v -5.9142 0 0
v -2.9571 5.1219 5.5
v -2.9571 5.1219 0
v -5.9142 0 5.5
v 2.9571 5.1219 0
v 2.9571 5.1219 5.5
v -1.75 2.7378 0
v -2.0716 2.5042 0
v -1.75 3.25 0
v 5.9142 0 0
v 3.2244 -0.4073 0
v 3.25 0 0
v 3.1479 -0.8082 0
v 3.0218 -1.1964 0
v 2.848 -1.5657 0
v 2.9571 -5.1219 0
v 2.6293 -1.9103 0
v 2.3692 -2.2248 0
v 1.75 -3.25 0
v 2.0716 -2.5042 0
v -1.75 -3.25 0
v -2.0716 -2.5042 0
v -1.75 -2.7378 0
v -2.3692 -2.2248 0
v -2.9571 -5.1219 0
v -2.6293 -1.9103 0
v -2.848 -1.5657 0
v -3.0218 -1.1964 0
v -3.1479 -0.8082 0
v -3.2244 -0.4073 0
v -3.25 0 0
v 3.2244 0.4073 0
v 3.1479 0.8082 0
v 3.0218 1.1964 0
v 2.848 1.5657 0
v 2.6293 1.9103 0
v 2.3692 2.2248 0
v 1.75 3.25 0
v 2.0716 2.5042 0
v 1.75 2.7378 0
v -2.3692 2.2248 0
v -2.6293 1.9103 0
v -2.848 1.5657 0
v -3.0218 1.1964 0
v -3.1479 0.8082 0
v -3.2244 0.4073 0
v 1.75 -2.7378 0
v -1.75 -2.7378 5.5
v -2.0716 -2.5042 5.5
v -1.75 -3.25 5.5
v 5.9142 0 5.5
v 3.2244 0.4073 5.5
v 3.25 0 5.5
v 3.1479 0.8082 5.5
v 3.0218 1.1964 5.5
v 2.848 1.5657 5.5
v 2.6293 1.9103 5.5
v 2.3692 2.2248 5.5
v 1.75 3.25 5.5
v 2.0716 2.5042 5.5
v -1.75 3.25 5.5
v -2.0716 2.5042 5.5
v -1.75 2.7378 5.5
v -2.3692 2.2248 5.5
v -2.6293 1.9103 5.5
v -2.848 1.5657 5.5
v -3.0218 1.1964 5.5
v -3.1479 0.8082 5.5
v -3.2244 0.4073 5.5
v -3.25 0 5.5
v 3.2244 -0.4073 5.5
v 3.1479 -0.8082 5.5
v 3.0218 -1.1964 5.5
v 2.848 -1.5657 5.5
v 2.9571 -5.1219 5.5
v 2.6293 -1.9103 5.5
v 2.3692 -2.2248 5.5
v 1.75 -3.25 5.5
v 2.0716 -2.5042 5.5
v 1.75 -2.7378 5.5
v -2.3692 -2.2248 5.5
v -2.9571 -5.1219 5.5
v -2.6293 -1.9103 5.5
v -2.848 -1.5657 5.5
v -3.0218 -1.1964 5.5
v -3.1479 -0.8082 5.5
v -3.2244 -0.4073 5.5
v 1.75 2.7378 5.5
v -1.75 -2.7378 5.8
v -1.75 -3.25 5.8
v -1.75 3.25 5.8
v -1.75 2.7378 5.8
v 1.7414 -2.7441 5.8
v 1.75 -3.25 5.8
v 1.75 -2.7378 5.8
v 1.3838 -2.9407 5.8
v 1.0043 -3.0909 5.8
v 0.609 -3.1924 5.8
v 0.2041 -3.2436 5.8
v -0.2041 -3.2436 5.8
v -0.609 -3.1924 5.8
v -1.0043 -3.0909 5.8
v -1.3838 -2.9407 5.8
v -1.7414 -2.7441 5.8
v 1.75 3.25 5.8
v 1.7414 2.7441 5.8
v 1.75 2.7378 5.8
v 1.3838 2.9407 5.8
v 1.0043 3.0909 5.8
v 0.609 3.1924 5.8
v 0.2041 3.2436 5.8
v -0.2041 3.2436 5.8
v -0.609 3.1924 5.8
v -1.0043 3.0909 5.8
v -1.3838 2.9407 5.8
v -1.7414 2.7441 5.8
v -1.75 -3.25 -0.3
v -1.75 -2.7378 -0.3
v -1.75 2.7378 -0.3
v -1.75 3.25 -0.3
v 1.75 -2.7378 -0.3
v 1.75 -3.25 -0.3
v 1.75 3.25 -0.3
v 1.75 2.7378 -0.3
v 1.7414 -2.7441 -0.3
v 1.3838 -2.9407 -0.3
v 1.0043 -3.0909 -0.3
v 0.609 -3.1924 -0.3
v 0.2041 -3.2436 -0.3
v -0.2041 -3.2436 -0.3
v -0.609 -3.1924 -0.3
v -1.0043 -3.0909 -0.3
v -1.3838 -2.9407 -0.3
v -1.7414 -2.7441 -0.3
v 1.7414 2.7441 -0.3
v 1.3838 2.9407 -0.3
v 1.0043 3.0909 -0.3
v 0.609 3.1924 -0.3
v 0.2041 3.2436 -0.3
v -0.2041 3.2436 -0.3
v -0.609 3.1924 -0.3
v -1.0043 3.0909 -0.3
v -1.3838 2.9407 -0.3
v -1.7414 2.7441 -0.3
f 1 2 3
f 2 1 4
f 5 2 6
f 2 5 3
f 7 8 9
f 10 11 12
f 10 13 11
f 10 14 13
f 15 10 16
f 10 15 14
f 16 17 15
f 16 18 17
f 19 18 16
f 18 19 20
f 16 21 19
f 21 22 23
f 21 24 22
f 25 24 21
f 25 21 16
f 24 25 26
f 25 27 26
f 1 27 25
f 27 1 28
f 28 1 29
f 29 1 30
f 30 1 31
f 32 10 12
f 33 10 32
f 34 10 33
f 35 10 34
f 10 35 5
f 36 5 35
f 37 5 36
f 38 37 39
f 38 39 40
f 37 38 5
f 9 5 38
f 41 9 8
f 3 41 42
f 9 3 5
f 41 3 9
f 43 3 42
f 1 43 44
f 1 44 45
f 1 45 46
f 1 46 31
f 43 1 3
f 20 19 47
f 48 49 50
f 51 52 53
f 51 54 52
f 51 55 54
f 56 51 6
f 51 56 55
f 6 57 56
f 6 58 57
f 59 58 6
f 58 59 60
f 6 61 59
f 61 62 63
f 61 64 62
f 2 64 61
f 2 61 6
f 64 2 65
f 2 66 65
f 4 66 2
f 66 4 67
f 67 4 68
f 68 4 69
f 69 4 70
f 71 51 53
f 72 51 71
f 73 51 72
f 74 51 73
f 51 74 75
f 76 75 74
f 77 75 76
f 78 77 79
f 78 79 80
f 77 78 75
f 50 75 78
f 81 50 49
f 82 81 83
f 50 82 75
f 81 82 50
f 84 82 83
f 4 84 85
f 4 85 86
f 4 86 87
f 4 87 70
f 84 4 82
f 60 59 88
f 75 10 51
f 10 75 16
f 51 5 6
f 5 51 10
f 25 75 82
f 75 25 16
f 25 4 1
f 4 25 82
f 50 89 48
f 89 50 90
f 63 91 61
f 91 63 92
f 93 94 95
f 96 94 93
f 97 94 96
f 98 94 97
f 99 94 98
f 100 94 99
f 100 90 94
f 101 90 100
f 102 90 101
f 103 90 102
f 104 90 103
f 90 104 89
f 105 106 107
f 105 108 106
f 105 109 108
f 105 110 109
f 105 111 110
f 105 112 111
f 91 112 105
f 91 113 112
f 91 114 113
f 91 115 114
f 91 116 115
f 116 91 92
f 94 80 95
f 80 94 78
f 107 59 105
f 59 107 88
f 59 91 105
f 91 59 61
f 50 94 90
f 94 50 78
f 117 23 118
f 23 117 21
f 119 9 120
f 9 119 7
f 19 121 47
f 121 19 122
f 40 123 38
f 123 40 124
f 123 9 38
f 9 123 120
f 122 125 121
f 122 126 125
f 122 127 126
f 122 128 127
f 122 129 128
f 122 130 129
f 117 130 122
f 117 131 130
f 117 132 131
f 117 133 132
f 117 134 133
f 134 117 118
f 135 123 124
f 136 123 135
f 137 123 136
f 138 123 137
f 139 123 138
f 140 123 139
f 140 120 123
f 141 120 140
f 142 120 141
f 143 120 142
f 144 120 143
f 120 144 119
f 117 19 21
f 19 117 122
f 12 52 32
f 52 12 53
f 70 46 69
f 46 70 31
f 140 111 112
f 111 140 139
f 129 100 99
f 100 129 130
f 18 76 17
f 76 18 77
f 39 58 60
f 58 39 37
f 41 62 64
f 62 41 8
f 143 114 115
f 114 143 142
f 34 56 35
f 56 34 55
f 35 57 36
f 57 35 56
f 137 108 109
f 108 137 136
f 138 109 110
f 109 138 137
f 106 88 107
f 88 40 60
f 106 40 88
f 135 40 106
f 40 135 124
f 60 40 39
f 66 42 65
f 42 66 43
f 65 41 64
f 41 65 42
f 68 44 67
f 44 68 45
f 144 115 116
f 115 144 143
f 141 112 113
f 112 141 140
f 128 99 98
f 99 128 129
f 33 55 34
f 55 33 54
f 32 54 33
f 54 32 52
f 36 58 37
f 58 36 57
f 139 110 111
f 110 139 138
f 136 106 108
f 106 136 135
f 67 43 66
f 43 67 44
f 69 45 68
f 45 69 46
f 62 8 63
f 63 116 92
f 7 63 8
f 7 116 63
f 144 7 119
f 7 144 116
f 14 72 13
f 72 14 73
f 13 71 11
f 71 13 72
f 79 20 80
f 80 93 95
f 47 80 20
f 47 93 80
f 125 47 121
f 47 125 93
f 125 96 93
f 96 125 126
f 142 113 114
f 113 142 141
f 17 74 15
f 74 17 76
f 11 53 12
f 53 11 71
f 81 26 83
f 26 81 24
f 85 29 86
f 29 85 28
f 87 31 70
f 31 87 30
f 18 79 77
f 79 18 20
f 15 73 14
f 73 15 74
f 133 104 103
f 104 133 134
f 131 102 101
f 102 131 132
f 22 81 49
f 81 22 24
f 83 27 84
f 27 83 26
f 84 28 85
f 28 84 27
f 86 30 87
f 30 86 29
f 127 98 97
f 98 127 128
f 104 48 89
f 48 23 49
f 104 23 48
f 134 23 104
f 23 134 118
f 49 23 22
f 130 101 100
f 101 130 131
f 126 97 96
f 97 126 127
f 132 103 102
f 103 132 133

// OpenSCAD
$fn = 50;


difference() {
	union() {
		translate(v = [0, 0, 0]) {
			rotate(a = [0, 0, 0]) {
				translate(v = [0, 0, 0]) {
					rotate(a = [0, 0, 0]) {
						linear_extrude(height = 5.5000000000) {
							polygon(points = [[5.9142500000, 0.0000000000], [2.9571250000, 5.1218907443], [-2.9571250000, 5.1218907443], [-5.9142500000, 0.0000000000], [-2.9571250000, -5.1218907443], [2.9571250000, -5.1218907443]]);
						}
					}
				}
			}
		}
		#translate(v = [-1.7500000000, -3.2500000000, 5.5000000000]) {
			rotate(a = [0, 0, 0]) {
				cube(size = [3.5000000000, 6.5000000000, 0.3000000000]);
			}
		}
		#translate(v = [-1.7500000000, -1.7500000000, 5.8000000000]) {
			rotate(a = [0, 0, 0]) {
				cube(size = [3.5000000000, 3.5000000000, 0.3000000000]);
			}
		}
		#translate(v = [-1.7500000000, -3.2500000000, -0.3000000000]) {
			rotate(a = [0, 0, 0]) {
				cube(size = [3.5000000000, 6.5000000000, 0.3000000000]);
			}
		}
		#translate(v = [-1.7500000000, -1.7500000000, -0.6000000000]) {
			rotate(a = [0, 0, 0]) {
				cube(size = [3.5000000000, 3.5000000000, 0.3000000000]);
			}
		}
	}
	union() {
		translate(v = [0, 0, -10]) {
			rotate(a = [0, 0, 0]) {
				cylinder(h = 100, r = 3.2500000000);
			}
		}
	}
}
